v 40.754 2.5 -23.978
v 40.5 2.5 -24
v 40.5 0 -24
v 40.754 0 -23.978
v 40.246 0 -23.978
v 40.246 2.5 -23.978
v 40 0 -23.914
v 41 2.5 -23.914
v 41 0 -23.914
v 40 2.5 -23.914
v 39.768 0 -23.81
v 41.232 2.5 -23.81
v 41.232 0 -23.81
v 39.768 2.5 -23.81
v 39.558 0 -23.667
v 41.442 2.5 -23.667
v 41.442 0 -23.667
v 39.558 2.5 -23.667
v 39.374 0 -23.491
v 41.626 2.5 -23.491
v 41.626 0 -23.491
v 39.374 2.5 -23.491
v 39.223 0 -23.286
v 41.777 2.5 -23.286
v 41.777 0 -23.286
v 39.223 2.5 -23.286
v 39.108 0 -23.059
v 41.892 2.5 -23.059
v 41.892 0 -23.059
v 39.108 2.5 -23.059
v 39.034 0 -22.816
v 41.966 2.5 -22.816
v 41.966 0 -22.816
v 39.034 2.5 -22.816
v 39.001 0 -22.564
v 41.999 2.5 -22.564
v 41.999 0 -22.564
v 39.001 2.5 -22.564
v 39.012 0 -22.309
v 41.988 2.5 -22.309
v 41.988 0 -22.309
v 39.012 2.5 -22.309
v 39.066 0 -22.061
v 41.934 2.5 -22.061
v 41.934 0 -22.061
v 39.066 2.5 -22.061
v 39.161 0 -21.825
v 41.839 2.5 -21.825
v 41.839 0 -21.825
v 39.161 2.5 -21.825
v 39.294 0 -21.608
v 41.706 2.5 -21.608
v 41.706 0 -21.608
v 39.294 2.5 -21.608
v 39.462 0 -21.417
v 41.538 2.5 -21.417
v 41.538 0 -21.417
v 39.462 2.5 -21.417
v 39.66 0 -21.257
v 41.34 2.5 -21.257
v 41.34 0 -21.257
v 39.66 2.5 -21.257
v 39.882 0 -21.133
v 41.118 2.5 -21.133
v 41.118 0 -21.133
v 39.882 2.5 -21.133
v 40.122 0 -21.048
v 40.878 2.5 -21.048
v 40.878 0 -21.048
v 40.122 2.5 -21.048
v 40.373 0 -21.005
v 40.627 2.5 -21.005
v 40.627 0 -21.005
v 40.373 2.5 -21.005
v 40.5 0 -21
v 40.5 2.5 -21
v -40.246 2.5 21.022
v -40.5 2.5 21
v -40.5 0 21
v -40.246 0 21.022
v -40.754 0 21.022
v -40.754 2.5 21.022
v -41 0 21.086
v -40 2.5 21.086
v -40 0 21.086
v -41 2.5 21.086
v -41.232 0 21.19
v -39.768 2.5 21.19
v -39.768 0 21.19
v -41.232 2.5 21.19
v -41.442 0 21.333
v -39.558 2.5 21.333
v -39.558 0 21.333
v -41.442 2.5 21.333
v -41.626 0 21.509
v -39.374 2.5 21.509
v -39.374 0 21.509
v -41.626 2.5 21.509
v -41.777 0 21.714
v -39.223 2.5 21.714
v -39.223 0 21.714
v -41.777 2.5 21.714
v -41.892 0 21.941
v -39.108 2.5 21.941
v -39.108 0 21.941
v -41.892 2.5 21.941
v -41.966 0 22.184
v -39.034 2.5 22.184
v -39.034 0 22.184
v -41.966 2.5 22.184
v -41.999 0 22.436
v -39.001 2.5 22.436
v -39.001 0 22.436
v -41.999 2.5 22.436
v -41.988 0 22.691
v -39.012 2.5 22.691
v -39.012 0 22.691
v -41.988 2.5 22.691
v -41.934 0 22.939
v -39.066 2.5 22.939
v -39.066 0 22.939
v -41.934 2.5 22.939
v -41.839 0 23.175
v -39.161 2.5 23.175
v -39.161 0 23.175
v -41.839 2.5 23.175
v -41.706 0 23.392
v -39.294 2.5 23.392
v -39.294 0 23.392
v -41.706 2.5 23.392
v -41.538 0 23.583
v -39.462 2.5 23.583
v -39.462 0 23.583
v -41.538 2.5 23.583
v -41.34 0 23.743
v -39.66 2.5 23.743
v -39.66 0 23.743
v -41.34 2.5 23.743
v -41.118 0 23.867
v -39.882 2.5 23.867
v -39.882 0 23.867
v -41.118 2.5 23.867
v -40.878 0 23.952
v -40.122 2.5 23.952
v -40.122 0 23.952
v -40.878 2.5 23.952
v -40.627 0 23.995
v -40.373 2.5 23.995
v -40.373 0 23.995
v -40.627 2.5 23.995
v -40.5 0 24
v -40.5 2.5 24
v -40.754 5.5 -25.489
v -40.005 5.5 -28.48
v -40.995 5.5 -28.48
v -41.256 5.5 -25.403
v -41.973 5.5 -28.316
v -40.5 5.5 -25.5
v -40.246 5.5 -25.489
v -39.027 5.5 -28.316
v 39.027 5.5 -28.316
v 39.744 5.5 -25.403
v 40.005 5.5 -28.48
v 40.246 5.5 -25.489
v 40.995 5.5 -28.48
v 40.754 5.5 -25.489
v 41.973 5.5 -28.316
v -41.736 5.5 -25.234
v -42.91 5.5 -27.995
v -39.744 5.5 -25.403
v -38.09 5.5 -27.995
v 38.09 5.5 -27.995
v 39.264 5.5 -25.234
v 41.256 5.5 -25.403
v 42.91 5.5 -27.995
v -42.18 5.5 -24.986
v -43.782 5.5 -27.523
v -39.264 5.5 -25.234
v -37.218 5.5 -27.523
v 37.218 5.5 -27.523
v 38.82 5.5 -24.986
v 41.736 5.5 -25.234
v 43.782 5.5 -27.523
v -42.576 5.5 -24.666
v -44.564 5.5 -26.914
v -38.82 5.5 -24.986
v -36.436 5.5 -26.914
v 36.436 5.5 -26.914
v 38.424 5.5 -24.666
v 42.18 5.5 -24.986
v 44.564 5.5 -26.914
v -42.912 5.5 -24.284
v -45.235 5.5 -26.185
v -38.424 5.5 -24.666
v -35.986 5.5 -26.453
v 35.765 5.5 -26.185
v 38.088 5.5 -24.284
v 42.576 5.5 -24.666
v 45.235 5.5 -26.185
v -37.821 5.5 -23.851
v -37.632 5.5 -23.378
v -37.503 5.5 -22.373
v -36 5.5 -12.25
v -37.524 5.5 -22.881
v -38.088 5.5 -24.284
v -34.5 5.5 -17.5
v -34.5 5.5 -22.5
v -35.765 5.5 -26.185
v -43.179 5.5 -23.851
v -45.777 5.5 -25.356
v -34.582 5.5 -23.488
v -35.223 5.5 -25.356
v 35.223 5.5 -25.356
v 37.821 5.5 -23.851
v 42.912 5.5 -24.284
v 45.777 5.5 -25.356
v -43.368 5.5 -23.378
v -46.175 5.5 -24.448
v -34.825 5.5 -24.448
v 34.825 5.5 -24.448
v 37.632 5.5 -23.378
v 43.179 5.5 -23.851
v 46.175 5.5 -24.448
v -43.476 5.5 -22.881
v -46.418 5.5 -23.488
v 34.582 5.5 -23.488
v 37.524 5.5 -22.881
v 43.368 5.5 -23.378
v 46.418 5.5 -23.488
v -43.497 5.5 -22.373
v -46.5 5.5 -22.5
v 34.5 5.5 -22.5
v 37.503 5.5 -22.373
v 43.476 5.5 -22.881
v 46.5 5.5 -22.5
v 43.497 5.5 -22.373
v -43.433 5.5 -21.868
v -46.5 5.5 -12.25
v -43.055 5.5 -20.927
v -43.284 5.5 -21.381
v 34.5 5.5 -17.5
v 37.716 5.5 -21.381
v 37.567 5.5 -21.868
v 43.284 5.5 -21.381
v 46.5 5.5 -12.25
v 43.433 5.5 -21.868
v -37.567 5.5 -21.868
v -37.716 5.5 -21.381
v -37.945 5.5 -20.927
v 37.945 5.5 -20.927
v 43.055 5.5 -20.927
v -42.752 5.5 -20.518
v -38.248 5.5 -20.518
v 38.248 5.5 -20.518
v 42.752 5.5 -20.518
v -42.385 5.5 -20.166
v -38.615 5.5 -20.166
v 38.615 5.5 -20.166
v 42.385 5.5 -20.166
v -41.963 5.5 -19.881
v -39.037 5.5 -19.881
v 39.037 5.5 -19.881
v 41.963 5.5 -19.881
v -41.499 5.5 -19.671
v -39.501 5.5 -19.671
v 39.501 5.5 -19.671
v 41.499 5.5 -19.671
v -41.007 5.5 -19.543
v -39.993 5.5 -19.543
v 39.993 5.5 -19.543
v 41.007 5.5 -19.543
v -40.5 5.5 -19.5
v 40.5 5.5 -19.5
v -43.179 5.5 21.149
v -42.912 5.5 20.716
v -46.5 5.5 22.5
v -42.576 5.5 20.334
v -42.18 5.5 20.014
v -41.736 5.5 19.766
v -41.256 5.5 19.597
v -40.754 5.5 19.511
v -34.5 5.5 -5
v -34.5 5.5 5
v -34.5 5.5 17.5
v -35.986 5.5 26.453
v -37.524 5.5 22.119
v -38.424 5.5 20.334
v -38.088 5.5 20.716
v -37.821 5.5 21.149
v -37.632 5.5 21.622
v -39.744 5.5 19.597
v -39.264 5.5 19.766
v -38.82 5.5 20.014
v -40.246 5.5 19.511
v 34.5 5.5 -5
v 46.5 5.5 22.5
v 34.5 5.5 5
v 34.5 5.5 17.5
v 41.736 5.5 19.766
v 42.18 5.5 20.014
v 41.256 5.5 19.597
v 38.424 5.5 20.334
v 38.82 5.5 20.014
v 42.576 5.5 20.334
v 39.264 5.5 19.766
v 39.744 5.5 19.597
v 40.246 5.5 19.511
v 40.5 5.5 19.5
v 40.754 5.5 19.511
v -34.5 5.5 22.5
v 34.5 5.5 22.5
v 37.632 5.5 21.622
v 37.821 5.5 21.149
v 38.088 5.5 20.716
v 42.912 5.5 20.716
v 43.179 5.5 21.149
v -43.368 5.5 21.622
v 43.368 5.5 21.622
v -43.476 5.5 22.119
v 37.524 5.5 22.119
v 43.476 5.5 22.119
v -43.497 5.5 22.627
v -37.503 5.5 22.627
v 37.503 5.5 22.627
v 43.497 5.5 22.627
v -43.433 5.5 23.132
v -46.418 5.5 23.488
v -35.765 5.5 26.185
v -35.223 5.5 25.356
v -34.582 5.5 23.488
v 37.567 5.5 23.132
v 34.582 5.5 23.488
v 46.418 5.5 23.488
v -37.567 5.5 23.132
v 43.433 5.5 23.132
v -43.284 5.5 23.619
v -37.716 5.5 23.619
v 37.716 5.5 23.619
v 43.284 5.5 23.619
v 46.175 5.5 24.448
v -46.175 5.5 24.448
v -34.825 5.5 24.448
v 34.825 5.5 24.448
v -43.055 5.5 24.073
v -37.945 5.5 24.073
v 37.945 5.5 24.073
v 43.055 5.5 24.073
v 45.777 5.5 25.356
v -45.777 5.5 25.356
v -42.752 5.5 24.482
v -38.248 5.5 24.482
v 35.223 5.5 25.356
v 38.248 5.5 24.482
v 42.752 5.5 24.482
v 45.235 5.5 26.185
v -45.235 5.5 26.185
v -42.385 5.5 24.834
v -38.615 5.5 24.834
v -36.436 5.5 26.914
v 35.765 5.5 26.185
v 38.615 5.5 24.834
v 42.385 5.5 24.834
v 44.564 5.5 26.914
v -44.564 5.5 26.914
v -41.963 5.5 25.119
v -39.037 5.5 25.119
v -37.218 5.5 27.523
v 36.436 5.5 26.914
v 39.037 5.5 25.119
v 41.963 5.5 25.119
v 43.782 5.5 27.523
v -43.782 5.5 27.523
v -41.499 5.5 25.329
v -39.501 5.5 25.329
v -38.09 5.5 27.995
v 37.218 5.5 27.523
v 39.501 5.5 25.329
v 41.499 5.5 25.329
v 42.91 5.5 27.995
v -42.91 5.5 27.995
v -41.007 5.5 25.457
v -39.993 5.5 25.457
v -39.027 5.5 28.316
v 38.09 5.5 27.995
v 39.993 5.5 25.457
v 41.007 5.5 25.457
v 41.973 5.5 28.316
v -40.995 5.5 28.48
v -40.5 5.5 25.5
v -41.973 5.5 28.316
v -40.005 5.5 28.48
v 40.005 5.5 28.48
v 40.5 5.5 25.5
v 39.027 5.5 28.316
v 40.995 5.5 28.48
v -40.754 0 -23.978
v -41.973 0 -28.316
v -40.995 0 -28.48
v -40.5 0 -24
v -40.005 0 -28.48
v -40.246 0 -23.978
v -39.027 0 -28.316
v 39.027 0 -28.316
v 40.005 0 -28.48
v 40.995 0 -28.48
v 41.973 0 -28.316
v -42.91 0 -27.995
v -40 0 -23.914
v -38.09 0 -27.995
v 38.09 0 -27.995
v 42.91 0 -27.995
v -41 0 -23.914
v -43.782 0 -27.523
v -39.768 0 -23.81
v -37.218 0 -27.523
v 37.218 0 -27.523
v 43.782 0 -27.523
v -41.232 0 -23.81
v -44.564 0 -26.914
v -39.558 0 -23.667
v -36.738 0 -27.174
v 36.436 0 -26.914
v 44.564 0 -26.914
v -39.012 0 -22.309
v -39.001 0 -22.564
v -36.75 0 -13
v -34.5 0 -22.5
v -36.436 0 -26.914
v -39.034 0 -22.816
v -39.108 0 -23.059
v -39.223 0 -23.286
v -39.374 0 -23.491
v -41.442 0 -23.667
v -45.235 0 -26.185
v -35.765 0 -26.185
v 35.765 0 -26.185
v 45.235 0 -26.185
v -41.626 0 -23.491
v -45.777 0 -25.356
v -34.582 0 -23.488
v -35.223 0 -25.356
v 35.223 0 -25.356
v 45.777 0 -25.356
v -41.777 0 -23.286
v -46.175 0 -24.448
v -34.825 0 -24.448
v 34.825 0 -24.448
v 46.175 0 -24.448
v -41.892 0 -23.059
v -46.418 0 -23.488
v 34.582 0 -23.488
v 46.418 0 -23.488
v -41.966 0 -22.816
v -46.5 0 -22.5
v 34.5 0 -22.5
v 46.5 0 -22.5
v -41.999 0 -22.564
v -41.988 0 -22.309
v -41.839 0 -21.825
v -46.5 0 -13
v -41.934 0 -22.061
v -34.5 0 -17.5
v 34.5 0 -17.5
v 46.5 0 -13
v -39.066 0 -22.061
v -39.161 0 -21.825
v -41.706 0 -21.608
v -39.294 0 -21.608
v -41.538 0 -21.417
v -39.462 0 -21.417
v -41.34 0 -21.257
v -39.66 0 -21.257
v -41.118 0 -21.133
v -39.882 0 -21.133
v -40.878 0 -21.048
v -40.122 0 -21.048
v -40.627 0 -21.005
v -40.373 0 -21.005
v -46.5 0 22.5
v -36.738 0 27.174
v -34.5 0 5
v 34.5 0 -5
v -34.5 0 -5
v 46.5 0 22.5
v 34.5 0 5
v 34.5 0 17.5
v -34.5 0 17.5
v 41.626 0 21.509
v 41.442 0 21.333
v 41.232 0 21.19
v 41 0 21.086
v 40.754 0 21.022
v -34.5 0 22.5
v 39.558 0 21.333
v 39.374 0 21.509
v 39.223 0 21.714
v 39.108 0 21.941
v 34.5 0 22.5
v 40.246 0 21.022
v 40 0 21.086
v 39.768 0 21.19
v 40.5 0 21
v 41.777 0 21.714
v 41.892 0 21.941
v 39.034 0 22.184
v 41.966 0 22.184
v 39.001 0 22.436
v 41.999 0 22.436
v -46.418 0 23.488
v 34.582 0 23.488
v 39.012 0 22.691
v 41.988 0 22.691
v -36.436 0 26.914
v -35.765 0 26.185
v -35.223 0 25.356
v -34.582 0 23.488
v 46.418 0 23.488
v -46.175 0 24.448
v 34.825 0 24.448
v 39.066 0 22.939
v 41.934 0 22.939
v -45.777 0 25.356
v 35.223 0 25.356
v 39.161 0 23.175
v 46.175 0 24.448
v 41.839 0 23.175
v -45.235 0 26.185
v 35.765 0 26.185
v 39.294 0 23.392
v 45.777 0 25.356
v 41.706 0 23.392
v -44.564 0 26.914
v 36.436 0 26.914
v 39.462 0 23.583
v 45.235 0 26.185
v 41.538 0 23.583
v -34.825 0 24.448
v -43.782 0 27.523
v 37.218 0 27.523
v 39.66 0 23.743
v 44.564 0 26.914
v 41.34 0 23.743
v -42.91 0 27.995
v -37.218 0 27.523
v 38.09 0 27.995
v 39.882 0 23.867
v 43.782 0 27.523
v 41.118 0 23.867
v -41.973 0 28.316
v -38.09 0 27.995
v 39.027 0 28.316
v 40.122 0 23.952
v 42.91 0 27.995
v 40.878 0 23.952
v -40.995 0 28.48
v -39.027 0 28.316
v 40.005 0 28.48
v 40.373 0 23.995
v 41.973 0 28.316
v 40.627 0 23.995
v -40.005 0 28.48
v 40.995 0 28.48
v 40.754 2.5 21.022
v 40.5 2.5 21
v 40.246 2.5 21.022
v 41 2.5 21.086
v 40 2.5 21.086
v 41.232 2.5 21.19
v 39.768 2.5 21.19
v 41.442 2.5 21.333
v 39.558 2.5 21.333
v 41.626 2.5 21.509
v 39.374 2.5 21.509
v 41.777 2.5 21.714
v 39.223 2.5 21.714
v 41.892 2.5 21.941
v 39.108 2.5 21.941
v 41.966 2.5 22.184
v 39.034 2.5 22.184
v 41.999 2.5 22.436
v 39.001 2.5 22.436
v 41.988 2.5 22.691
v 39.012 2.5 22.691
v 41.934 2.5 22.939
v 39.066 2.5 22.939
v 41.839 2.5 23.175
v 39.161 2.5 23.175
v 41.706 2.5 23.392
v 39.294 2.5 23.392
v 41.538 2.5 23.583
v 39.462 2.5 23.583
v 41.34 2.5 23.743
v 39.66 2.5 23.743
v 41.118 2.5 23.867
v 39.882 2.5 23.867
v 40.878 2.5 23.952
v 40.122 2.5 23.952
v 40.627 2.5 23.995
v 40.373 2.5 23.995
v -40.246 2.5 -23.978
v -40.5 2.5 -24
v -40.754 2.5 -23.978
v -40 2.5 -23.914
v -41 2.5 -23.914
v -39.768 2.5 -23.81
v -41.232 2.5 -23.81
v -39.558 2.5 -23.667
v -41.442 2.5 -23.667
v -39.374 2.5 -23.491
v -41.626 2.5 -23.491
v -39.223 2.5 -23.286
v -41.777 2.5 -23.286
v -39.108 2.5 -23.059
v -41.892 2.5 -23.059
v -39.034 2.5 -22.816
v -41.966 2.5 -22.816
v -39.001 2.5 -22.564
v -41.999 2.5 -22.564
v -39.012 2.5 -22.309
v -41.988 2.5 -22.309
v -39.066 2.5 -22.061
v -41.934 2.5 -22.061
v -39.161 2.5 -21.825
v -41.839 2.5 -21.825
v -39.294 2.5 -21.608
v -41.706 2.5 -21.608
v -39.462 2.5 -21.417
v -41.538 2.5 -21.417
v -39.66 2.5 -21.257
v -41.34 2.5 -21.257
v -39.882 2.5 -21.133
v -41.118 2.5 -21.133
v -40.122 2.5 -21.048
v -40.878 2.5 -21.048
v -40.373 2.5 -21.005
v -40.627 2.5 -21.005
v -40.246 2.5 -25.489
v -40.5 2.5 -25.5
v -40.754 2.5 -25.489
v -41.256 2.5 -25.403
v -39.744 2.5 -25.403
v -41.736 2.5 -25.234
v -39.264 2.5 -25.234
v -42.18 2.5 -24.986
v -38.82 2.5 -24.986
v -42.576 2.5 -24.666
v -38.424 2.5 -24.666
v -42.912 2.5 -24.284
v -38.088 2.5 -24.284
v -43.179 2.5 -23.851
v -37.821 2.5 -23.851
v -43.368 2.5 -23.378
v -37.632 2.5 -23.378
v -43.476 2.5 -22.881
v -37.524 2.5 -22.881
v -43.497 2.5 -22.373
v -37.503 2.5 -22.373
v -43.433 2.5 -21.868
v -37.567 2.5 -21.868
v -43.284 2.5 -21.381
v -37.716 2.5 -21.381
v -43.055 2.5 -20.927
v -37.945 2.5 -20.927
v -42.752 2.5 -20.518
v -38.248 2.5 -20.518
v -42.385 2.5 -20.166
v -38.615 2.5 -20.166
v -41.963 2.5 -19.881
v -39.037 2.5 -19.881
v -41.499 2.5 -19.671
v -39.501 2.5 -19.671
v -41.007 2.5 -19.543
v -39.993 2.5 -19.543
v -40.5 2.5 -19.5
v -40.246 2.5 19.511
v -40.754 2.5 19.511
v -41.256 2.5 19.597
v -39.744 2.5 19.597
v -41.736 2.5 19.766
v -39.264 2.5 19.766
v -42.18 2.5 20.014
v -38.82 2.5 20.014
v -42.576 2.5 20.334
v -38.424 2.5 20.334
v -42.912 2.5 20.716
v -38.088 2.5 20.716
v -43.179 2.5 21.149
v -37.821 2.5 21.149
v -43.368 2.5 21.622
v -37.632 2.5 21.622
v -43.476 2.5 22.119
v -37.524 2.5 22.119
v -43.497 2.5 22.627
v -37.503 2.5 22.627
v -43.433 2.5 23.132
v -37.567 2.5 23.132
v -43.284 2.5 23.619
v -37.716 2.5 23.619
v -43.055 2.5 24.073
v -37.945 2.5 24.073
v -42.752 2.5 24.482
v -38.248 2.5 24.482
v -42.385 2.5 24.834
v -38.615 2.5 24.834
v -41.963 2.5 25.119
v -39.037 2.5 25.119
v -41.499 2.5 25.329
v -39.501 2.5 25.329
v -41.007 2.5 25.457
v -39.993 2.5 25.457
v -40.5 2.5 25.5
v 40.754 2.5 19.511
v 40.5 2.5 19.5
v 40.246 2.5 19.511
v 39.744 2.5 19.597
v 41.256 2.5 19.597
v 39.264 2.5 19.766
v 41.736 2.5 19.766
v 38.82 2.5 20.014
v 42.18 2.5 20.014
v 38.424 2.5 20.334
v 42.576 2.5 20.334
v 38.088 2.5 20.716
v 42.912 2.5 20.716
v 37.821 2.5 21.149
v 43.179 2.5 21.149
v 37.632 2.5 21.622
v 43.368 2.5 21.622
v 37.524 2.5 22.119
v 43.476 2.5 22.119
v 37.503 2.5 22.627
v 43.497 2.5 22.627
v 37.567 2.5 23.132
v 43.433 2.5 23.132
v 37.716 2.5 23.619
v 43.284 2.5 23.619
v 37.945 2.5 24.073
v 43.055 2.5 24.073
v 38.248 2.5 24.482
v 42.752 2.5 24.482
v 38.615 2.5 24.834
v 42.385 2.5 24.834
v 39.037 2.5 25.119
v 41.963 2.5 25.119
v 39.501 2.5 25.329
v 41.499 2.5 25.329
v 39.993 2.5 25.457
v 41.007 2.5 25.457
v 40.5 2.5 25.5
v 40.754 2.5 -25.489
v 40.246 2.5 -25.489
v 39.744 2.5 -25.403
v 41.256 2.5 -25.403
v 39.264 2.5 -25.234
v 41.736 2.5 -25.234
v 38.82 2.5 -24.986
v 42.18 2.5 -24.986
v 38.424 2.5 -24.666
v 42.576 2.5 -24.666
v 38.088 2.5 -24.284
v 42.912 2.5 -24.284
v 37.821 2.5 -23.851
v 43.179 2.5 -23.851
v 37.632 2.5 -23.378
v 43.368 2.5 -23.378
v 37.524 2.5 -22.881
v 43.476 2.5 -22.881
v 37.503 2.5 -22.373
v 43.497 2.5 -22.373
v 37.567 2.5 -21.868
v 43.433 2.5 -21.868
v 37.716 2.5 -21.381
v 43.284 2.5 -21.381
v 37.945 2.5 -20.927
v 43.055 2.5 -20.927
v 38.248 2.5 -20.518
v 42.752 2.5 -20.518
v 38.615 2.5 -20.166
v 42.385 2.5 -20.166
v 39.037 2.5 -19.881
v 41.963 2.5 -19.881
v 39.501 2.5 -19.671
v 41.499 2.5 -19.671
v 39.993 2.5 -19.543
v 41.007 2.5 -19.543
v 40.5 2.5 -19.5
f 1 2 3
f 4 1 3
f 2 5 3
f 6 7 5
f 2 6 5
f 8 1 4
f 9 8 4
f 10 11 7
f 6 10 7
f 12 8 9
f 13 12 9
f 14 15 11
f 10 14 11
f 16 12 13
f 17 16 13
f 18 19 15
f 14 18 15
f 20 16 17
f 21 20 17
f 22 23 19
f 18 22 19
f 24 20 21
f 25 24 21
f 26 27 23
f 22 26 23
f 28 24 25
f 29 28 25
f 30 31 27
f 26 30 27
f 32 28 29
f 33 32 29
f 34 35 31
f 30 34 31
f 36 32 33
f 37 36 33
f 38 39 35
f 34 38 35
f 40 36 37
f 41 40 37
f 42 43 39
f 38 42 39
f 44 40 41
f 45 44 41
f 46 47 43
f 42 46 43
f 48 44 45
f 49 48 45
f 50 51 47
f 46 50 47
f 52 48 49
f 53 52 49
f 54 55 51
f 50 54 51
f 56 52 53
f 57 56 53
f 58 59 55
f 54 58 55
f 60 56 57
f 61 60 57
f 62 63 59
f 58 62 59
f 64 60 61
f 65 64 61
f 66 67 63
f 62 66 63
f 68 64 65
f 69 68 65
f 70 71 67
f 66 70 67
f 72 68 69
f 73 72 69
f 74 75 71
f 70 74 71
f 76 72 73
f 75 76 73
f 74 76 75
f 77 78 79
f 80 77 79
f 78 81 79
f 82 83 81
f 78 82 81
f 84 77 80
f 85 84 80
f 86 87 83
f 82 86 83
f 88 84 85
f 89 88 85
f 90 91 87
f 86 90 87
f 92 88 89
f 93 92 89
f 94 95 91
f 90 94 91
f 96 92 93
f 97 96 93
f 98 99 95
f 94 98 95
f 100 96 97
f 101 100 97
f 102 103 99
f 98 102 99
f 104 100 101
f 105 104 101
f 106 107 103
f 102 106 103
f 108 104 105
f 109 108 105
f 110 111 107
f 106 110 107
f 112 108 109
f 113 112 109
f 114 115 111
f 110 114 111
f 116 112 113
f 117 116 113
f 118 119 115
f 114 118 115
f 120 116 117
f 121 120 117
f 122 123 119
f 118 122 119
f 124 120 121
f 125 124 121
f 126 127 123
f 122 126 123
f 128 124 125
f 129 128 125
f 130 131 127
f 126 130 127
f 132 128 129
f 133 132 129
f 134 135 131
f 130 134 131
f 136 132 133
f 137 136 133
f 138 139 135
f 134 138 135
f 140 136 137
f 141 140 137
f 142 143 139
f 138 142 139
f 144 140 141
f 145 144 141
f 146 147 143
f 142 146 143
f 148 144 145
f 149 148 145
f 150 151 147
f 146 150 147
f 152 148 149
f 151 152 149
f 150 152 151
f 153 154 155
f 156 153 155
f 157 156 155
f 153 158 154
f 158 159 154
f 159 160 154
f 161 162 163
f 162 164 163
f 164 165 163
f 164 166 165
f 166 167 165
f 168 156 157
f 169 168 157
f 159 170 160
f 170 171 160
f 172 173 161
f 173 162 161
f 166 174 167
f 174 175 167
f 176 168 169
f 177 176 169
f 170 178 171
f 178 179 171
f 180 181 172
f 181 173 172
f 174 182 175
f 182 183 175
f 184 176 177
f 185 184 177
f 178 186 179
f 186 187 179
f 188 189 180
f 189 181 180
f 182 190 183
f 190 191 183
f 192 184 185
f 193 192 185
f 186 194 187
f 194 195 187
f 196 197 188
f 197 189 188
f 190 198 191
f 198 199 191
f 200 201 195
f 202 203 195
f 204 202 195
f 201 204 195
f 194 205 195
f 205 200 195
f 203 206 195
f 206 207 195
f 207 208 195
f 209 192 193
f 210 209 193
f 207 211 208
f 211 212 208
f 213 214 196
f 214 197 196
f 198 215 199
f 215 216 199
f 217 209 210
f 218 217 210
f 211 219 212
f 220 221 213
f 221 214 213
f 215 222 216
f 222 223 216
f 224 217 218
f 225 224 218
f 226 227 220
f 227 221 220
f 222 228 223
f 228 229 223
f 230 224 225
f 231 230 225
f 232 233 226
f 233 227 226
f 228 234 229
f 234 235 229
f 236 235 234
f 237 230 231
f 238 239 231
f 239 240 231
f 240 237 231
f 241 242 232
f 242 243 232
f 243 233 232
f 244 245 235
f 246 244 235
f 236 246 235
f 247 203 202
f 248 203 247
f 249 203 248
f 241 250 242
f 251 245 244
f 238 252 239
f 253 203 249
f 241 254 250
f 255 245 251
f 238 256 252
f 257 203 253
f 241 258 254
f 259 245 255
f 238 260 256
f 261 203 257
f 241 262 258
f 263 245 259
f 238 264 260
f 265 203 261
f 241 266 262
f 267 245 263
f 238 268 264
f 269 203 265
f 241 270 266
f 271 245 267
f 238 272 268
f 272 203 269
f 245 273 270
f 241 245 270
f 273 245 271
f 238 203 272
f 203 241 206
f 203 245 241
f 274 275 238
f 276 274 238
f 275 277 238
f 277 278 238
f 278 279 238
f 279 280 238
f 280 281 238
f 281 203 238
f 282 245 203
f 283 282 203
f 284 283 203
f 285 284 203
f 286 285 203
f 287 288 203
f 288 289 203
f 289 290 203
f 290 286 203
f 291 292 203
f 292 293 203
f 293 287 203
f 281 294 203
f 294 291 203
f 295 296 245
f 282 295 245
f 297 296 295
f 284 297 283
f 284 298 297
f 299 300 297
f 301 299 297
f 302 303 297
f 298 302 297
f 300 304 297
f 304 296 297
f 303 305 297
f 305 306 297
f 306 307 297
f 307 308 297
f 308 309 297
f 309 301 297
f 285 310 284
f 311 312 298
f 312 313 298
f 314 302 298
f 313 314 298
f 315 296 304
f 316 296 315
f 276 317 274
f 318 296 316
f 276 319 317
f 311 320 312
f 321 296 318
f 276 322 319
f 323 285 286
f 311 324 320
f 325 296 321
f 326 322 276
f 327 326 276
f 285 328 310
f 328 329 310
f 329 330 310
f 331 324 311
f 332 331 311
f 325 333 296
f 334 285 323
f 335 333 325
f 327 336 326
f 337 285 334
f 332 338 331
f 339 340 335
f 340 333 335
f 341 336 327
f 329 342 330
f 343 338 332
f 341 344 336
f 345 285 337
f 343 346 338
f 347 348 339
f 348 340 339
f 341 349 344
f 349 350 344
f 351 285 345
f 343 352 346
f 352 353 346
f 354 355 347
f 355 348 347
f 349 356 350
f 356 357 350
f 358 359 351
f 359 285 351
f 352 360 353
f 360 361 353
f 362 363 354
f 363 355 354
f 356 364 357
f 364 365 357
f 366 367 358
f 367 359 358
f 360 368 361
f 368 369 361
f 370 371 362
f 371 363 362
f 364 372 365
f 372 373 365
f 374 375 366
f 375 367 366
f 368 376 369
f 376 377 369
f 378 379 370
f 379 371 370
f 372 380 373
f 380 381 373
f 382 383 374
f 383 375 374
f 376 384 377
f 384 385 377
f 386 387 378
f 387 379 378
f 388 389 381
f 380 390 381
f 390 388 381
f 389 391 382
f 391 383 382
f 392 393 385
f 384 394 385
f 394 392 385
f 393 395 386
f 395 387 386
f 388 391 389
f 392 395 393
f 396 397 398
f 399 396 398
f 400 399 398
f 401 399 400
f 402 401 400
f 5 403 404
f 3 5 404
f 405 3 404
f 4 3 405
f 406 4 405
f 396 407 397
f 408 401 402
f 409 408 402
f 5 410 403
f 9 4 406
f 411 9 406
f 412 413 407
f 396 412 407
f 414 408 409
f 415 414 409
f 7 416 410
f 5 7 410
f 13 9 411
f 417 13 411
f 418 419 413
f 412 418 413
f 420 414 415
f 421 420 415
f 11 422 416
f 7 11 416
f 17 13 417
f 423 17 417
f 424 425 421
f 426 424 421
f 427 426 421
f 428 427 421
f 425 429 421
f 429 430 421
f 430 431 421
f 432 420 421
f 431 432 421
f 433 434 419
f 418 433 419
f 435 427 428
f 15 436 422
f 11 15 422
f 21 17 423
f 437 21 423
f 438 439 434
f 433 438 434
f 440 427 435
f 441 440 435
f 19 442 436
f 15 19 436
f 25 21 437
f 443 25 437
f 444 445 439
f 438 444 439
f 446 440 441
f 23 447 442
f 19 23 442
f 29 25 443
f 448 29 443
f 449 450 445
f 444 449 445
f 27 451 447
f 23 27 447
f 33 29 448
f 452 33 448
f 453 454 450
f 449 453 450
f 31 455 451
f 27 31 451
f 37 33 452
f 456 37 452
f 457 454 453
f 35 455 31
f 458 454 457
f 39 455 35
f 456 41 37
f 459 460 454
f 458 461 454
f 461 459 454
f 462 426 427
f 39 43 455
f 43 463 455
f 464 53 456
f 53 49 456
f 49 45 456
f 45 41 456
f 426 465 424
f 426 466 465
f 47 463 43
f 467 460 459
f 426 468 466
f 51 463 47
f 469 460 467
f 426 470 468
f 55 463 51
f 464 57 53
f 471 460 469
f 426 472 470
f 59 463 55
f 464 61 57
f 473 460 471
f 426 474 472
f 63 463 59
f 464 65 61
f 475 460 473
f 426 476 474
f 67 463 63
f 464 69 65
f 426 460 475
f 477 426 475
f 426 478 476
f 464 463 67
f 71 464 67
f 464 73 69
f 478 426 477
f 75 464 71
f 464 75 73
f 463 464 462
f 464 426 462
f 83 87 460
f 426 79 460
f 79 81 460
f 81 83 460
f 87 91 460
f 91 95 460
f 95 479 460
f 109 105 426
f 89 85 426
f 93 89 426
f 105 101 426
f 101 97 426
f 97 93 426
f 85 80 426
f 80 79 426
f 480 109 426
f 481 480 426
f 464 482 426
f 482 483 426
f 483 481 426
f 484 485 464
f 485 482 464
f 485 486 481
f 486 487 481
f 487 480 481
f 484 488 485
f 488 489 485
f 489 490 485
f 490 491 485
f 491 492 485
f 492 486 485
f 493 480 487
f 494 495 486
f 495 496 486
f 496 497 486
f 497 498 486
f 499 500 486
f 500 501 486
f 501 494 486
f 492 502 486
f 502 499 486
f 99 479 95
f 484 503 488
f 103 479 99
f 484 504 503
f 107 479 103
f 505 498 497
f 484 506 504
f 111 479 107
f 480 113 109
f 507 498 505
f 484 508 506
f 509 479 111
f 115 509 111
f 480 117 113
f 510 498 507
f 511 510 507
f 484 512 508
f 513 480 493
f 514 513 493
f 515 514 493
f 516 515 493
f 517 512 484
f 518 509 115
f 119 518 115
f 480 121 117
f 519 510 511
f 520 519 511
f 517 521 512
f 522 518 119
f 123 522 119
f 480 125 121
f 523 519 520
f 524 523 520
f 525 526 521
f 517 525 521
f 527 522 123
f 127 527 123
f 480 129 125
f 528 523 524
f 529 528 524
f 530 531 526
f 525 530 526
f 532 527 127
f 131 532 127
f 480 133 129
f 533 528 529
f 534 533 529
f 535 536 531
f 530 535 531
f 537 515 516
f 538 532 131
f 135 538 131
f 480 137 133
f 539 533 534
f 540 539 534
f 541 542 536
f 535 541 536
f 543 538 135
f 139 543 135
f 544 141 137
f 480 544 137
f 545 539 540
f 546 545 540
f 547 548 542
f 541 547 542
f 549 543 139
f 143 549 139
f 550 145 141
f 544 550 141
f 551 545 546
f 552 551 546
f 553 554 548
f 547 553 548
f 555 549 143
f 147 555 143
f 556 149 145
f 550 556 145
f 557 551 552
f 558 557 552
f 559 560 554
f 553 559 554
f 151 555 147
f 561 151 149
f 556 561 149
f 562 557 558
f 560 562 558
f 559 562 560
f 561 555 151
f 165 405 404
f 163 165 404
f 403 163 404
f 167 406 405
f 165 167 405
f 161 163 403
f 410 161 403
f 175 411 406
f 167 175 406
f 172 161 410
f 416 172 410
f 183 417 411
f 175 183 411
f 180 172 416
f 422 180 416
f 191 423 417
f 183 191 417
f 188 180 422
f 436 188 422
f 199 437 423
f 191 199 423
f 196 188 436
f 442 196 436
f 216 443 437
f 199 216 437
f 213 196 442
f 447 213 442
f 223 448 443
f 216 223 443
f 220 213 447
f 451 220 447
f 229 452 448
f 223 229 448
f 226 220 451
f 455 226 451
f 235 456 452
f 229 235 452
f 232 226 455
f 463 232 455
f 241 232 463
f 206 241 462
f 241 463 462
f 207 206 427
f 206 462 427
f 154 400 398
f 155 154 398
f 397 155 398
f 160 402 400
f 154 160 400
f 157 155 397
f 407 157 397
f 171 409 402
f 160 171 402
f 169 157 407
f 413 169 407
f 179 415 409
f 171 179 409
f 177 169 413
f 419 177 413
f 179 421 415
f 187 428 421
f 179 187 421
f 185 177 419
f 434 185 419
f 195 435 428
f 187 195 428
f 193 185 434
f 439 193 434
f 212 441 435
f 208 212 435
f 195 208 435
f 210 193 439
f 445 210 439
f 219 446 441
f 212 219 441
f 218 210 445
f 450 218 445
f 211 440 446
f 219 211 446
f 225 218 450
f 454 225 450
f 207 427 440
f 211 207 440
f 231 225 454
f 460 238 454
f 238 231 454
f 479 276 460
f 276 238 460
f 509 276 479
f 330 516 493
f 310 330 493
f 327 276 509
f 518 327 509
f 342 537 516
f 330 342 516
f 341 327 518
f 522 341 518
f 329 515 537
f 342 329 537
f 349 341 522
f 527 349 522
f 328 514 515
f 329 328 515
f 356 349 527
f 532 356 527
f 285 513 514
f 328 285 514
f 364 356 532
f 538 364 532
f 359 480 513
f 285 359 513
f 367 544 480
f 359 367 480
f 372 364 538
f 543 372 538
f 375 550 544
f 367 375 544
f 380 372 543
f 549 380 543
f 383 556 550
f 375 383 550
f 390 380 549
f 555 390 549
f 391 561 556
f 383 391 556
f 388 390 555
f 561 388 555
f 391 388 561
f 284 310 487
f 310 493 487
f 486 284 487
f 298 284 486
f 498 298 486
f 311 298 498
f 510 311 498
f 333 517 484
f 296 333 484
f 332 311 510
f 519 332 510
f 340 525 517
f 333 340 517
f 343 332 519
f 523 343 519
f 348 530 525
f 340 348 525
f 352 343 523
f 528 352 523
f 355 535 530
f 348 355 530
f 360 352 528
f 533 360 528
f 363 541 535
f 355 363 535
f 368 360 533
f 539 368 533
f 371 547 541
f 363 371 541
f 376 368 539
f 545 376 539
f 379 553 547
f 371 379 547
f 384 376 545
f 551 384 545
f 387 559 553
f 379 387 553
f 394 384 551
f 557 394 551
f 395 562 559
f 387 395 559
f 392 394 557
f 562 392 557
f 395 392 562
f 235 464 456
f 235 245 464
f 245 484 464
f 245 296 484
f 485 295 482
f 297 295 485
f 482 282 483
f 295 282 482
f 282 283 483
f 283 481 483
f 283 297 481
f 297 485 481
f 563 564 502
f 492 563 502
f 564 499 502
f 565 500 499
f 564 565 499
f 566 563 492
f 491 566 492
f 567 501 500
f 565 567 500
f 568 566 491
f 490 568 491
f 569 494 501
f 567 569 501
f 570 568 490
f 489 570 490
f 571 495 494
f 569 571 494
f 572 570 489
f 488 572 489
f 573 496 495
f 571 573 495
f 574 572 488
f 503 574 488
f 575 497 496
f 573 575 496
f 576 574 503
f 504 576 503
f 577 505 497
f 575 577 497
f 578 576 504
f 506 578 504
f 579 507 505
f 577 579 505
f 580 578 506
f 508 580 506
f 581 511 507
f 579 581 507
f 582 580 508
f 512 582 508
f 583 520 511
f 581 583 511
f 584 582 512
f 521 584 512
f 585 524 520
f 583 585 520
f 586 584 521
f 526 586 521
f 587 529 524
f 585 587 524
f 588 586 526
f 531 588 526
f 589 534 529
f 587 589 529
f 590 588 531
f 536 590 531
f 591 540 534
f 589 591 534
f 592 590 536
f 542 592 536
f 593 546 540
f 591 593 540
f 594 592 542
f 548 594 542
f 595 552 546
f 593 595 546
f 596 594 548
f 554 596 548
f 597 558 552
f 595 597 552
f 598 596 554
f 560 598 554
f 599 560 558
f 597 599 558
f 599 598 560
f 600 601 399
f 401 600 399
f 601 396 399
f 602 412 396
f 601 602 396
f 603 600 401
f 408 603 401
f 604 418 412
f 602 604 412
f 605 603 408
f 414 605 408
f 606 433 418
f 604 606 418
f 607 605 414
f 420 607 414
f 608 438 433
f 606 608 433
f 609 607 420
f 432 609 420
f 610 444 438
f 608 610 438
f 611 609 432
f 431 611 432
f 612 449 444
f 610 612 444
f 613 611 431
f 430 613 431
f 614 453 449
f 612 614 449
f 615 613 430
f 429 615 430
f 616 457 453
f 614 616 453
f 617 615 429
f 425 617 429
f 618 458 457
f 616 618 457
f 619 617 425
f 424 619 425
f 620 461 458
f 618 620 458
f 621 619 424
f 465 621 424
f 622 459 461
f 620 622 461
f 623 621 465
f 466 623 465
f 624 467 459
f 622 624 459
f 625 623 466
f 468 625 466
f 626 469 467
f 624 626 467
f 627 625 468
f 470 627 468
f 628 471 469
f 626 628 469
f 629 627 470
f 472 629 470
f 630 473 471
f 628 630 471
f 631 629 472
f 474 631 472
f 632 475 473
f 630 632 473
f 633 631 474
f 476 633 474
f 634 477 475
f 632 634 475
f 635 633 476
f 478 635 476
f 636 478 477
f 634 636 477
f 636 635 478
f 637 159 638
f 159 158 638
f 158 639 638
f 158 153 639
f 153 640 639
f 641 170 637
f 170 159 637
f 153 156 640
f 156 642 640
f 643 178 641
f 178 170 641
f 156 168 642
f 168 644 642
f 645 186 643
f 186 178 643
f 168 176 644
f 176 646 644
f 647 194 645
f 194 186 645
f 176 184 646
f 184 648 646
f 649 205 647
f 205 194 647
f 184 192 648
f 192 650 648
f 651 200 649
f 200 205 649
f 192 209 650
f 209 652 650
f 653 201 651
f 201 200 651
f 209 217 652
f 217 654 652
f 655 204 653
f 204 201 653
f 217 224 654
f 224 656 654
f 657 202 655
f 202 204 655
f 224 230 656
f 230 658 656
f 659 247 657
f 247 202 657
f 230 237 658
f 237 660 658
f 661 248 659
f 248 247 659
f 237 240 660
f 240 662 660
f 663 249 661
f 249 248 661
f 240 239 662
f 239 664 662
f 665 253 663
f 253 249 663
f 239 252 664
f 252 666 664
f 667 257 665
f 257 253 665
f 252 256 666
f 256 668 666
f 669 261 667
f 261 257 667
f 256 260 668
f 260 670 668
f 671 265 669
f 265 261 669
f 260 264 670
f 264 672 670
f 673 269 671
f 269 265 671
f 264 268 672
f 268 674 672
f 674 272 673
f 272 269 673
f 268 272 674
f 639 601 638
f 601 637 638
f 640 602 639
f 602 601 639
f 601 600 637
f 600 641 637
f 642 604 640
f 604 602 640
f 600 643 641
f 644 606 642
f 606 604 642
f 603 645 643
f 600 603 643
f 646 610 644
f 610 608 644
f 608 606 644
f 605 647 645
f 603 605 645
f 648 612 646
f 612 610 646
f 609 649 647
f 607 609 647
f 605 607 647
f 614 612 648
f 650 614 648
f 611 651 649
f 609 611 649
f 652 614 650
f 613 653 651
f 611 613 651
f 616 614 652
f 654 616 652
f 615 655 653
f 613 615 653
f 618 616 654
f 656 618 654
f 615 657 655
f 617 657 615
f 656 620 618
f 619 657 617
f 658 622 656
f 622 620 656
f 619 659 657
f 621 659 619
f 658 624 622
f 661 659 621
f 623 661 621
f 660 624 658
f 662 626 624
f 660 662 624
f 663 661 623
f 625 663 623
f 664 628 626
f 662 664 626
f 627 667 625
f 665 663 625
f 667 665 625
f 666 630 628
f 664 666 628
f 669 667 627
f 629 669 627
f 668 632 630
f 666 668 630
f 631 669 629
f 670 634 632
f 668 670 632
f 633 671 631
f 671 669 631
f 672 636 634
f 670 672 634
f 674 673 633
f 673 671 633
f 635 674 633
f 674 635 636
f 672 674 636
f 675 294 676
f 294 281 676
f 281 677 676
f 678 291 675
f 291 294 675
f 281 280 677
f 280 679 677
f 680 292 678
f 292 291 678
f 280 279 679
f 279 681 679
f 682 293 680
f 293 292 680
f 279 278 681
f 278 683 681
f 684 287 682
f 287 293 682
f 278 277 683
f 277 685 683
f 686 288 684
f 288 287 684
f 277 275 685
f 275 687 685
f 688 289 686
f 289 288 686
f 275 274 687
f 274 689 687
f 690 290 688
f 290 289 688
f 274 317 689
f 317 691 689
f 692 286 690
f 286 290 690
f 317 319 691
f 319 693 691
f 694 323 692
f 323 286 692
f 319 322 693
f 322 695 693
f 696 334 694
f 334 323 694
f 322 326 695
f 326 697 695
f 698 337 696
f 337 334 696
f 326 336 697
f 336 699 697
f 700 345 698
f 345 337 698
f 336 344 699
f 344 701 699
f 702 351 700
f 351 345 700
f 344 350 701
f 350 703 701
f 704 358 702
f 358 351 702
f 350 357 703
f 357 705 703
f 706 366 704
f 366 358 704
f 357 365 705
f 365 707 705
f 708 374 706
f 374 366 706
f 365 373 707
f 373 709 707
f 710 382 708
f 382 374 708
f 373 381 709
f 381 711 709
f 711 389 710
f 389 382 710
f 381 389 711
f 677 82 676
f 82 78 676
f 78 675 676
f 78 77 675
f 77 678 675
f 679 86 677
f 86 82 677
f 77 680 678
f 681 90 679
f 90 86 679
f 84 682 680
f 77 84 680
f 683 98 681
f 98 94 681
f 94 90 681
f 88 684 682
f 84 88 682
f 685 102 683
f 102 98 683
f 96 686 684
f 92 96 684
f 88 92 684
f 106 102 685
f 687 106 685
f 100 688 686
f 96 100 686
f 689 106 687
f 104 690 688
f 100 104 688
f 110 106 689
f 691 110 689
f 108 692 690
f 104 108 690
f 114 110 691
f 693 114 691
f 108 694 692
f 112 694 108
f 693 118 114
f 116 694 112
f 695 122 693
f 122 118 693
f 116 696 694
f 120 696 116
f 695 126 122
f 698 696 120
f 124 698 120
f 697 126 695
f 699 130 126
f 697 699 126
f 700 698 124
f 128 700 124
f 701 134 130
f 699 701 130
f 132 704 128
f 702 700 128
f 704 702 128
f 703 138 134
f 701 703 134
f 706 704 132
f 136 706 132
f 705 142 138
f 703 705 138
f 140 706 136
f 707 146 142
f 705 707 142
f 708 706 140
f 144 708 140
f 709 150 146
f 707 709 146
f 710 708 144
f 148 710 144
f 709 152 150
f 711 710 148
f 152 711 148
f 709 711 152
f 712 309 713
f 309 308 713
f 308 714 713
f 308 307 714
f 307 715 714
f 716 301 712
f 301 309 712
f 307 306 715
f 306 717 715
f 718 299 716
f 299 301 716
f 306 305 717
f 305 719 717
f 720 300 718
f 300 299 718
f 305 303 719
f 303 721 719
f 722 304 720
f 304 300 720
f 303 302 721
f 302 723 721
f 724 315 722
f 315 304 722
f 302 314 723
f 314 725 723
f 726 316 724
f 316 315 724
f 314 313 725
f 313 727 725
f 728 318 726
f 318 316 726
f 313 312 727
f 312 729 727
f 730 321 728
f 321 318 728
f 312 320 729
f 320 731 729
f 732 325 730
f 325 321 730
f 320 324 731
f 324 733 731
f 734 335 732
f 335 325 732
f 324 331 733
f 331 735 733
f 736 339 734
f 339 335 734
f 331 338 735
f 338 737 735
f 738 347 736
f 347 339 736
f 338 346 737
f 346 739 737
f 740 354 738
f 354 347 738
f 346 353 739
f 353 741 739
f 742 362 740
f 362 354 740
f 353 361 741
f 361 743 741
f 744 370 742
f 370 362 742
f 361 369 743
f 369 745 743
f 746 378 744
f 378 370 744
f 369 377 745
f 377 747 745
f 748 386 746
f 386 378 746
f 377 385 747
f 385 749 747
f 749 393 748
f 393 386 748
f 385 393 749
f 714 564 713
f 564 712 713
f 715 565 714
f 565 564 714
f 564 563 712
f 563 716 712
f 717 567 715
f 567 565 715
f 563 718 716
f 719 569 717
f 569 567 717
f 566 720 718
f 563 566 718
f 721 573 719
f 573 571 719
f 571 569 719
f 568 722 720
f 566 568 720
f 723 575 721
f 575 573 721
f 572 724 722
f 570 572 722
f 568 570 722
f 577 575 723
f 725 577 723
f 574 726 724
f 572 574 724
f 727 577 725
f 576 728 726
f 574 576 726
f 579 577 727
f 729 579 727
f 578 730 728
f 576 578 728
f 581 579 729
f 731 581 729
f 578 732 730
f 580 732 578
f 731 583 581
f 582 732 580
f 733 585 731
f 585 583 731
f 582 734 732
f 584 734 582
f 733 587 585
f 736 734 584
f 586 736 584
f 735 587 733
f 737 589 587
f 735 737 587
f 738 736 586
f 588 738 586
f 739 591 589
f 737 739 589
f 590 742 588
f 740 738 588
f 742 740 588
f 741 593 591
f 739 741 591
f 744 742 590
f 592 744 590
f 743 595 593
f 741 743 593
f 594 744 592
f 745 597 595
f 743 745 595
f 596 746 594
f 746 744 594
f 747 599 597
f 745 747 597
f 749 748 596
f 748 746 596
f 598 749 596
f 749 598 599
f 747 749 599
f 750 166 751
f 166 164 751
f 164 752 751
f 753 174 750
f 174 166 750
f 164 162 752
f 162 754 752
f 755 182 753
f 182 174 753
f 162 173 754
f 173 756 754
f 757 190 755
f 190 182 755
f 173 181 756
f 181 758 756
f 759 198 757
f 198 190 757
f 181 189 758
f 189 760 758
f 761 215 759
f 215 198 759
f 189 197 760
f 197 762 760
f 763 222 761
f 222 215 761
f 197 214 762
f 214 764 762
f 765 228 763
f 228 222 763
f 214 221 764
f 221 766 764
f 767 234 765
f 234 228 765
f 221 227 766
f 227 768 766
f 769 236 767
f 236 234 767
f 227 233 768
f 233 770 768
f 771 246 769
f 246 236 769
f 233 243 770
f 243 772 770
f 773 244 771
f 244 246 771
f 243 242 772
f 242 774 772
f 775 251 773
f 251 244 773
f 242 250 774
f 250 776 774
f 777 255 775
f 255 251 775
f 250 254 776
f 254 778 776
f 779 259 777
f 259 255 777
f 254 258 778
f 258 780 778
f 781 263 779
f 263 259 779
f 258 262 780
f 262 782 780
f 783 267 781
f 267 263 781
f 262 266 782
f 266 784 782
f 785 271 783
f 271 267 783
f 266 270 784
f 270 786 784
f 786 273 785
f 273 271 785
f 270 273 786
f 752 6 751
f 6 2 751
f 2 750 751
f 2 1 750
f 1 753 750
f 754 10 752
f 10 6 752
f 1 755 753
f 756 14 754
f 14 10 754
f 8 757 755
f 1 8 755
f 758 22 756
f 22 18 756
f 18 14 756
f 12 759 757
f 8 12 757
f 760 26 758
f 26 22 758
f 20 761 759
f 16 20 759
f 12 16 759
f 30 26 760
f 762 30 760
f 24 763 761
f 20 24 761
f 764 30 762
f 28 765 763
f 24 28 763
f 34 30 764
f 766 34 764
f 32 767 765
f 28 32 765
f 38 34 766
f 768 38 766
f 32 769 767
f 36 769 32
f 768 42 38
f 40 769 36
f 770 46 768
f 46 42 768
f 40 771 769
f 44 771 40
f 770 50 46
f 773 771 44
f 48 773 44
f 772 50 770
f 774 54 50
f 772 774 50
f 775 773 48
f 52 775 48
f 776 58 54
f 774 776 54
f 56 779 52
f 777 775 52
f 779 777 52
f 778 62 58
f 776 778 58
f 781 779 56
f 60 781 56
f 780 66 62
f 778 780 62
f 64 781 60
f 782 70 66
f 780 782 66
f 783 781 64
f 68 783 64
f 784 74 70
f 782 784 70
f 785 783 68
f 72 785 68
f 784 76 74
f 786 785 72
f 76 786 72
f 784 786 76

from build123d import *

# Parameters (mm, degrees)
SKETCH_1_R          = 1.5
SKETCH_1_W          = 69
SKETCH_1_H          = 10
EXTRUDE_3_DEPTH     = 5.5
SKETCH_2_R          = 3
CUT_EXTRUDE_1_DEPTH = 3


with BuildPart() as part:
    # 草图1 → 凸台-拉伸3 (new body)
    with BuildSketch(Plane(origin=(0, 0, 0), x_dir=(1, 0, 0), z_dir=(0, 1, 0))):
        with BuildLine():
            Line((46.5, 22.5), (46.5, -22.5))
            ThreePointArc((46.5, -22.5), (40.5, -28.5), (34.5, -22.5))
            Line((34.5, -22.5), (34.5, -17.5))
            Line((34.5, -17.5), (-34.5, -17.5))
            Line((-34.5, -17.5), (-34.5, -22.5))
            ThreePointArc((-34.5, -22.5), (-40.5, -28.5), (-46.5, -22.5))
            Line((-46.5, -22.5), (-46.5, 22.5))
            ThreePointArc((-46.5, 22.5), (-40.5, 28.5), (-34.5, 22.5))
            Line((-34.5, 22.5), (-34.5, 17.5))
            Line((-34.5, 17.5), (34.5, 17.5))
            Line((34.5, 17.5), (34.5, 22.5))
            ThreePointArc((34.5, 22.5), (40.5, 28.5), (46.5, 22.5))
        make_face()
        with Locations(Location((40.5, 22.5, 0), (0, 0, 270))):
            Circle(SKETCH_1_R, mode=Mode.SUBTRACT)
        with Locations(Location((40.5, -22.5, 0), (0, 0, 90))):
            Circle(SKETCH_1_R, mode=Mode.SUBTRACT)
        with Locations(Location((-40.5, -22.5, 0), (0, 0, 270))):
            Circle(SKETCH_1_R, mode=Mode.SUBTRACT)
        with Locations(Location((-40.5, 22.5, 0), (0, 0, 90))):
            Circle(SKETCH_1_R, mode=Mode.SUBTRACT)
        Rectangle(SKETCH_1_W, SKETCH_1_H, mode=Mode.SUBTRACT)
    extrude(amount=EXTRUDE_3_DEPTH)

    # 草图2 → 切除-拉伸1 (cut)
    with BuildSketch(Plane(origin=(0, 5.5, 0), x_dir=(1, 0, 0), z_dir=(0, 1, 0))):
        with Locations(Location((40.5, 22.5, 0), (0, 0, 270))):
            Circle(SKETCH_2_R)
        with Locations(Location((40.5, -22.5, 0), (0, 0, 90))):
            Circle(SKETCH_2_R)
        with Locations(Location((-40.5, -22.5, 0), (0, 0, 270))):
            Circle(SKETCH_2_R)
        with Locations(Location((-40.5, 22.5, 0), (0, 0, 90))):
            Circle(SKETCH_2_R)
    extrude(amount=-CUT_EXTRUDE_1_DEPTH, mode=Mode.SUBTRACT)


solid = part.part
